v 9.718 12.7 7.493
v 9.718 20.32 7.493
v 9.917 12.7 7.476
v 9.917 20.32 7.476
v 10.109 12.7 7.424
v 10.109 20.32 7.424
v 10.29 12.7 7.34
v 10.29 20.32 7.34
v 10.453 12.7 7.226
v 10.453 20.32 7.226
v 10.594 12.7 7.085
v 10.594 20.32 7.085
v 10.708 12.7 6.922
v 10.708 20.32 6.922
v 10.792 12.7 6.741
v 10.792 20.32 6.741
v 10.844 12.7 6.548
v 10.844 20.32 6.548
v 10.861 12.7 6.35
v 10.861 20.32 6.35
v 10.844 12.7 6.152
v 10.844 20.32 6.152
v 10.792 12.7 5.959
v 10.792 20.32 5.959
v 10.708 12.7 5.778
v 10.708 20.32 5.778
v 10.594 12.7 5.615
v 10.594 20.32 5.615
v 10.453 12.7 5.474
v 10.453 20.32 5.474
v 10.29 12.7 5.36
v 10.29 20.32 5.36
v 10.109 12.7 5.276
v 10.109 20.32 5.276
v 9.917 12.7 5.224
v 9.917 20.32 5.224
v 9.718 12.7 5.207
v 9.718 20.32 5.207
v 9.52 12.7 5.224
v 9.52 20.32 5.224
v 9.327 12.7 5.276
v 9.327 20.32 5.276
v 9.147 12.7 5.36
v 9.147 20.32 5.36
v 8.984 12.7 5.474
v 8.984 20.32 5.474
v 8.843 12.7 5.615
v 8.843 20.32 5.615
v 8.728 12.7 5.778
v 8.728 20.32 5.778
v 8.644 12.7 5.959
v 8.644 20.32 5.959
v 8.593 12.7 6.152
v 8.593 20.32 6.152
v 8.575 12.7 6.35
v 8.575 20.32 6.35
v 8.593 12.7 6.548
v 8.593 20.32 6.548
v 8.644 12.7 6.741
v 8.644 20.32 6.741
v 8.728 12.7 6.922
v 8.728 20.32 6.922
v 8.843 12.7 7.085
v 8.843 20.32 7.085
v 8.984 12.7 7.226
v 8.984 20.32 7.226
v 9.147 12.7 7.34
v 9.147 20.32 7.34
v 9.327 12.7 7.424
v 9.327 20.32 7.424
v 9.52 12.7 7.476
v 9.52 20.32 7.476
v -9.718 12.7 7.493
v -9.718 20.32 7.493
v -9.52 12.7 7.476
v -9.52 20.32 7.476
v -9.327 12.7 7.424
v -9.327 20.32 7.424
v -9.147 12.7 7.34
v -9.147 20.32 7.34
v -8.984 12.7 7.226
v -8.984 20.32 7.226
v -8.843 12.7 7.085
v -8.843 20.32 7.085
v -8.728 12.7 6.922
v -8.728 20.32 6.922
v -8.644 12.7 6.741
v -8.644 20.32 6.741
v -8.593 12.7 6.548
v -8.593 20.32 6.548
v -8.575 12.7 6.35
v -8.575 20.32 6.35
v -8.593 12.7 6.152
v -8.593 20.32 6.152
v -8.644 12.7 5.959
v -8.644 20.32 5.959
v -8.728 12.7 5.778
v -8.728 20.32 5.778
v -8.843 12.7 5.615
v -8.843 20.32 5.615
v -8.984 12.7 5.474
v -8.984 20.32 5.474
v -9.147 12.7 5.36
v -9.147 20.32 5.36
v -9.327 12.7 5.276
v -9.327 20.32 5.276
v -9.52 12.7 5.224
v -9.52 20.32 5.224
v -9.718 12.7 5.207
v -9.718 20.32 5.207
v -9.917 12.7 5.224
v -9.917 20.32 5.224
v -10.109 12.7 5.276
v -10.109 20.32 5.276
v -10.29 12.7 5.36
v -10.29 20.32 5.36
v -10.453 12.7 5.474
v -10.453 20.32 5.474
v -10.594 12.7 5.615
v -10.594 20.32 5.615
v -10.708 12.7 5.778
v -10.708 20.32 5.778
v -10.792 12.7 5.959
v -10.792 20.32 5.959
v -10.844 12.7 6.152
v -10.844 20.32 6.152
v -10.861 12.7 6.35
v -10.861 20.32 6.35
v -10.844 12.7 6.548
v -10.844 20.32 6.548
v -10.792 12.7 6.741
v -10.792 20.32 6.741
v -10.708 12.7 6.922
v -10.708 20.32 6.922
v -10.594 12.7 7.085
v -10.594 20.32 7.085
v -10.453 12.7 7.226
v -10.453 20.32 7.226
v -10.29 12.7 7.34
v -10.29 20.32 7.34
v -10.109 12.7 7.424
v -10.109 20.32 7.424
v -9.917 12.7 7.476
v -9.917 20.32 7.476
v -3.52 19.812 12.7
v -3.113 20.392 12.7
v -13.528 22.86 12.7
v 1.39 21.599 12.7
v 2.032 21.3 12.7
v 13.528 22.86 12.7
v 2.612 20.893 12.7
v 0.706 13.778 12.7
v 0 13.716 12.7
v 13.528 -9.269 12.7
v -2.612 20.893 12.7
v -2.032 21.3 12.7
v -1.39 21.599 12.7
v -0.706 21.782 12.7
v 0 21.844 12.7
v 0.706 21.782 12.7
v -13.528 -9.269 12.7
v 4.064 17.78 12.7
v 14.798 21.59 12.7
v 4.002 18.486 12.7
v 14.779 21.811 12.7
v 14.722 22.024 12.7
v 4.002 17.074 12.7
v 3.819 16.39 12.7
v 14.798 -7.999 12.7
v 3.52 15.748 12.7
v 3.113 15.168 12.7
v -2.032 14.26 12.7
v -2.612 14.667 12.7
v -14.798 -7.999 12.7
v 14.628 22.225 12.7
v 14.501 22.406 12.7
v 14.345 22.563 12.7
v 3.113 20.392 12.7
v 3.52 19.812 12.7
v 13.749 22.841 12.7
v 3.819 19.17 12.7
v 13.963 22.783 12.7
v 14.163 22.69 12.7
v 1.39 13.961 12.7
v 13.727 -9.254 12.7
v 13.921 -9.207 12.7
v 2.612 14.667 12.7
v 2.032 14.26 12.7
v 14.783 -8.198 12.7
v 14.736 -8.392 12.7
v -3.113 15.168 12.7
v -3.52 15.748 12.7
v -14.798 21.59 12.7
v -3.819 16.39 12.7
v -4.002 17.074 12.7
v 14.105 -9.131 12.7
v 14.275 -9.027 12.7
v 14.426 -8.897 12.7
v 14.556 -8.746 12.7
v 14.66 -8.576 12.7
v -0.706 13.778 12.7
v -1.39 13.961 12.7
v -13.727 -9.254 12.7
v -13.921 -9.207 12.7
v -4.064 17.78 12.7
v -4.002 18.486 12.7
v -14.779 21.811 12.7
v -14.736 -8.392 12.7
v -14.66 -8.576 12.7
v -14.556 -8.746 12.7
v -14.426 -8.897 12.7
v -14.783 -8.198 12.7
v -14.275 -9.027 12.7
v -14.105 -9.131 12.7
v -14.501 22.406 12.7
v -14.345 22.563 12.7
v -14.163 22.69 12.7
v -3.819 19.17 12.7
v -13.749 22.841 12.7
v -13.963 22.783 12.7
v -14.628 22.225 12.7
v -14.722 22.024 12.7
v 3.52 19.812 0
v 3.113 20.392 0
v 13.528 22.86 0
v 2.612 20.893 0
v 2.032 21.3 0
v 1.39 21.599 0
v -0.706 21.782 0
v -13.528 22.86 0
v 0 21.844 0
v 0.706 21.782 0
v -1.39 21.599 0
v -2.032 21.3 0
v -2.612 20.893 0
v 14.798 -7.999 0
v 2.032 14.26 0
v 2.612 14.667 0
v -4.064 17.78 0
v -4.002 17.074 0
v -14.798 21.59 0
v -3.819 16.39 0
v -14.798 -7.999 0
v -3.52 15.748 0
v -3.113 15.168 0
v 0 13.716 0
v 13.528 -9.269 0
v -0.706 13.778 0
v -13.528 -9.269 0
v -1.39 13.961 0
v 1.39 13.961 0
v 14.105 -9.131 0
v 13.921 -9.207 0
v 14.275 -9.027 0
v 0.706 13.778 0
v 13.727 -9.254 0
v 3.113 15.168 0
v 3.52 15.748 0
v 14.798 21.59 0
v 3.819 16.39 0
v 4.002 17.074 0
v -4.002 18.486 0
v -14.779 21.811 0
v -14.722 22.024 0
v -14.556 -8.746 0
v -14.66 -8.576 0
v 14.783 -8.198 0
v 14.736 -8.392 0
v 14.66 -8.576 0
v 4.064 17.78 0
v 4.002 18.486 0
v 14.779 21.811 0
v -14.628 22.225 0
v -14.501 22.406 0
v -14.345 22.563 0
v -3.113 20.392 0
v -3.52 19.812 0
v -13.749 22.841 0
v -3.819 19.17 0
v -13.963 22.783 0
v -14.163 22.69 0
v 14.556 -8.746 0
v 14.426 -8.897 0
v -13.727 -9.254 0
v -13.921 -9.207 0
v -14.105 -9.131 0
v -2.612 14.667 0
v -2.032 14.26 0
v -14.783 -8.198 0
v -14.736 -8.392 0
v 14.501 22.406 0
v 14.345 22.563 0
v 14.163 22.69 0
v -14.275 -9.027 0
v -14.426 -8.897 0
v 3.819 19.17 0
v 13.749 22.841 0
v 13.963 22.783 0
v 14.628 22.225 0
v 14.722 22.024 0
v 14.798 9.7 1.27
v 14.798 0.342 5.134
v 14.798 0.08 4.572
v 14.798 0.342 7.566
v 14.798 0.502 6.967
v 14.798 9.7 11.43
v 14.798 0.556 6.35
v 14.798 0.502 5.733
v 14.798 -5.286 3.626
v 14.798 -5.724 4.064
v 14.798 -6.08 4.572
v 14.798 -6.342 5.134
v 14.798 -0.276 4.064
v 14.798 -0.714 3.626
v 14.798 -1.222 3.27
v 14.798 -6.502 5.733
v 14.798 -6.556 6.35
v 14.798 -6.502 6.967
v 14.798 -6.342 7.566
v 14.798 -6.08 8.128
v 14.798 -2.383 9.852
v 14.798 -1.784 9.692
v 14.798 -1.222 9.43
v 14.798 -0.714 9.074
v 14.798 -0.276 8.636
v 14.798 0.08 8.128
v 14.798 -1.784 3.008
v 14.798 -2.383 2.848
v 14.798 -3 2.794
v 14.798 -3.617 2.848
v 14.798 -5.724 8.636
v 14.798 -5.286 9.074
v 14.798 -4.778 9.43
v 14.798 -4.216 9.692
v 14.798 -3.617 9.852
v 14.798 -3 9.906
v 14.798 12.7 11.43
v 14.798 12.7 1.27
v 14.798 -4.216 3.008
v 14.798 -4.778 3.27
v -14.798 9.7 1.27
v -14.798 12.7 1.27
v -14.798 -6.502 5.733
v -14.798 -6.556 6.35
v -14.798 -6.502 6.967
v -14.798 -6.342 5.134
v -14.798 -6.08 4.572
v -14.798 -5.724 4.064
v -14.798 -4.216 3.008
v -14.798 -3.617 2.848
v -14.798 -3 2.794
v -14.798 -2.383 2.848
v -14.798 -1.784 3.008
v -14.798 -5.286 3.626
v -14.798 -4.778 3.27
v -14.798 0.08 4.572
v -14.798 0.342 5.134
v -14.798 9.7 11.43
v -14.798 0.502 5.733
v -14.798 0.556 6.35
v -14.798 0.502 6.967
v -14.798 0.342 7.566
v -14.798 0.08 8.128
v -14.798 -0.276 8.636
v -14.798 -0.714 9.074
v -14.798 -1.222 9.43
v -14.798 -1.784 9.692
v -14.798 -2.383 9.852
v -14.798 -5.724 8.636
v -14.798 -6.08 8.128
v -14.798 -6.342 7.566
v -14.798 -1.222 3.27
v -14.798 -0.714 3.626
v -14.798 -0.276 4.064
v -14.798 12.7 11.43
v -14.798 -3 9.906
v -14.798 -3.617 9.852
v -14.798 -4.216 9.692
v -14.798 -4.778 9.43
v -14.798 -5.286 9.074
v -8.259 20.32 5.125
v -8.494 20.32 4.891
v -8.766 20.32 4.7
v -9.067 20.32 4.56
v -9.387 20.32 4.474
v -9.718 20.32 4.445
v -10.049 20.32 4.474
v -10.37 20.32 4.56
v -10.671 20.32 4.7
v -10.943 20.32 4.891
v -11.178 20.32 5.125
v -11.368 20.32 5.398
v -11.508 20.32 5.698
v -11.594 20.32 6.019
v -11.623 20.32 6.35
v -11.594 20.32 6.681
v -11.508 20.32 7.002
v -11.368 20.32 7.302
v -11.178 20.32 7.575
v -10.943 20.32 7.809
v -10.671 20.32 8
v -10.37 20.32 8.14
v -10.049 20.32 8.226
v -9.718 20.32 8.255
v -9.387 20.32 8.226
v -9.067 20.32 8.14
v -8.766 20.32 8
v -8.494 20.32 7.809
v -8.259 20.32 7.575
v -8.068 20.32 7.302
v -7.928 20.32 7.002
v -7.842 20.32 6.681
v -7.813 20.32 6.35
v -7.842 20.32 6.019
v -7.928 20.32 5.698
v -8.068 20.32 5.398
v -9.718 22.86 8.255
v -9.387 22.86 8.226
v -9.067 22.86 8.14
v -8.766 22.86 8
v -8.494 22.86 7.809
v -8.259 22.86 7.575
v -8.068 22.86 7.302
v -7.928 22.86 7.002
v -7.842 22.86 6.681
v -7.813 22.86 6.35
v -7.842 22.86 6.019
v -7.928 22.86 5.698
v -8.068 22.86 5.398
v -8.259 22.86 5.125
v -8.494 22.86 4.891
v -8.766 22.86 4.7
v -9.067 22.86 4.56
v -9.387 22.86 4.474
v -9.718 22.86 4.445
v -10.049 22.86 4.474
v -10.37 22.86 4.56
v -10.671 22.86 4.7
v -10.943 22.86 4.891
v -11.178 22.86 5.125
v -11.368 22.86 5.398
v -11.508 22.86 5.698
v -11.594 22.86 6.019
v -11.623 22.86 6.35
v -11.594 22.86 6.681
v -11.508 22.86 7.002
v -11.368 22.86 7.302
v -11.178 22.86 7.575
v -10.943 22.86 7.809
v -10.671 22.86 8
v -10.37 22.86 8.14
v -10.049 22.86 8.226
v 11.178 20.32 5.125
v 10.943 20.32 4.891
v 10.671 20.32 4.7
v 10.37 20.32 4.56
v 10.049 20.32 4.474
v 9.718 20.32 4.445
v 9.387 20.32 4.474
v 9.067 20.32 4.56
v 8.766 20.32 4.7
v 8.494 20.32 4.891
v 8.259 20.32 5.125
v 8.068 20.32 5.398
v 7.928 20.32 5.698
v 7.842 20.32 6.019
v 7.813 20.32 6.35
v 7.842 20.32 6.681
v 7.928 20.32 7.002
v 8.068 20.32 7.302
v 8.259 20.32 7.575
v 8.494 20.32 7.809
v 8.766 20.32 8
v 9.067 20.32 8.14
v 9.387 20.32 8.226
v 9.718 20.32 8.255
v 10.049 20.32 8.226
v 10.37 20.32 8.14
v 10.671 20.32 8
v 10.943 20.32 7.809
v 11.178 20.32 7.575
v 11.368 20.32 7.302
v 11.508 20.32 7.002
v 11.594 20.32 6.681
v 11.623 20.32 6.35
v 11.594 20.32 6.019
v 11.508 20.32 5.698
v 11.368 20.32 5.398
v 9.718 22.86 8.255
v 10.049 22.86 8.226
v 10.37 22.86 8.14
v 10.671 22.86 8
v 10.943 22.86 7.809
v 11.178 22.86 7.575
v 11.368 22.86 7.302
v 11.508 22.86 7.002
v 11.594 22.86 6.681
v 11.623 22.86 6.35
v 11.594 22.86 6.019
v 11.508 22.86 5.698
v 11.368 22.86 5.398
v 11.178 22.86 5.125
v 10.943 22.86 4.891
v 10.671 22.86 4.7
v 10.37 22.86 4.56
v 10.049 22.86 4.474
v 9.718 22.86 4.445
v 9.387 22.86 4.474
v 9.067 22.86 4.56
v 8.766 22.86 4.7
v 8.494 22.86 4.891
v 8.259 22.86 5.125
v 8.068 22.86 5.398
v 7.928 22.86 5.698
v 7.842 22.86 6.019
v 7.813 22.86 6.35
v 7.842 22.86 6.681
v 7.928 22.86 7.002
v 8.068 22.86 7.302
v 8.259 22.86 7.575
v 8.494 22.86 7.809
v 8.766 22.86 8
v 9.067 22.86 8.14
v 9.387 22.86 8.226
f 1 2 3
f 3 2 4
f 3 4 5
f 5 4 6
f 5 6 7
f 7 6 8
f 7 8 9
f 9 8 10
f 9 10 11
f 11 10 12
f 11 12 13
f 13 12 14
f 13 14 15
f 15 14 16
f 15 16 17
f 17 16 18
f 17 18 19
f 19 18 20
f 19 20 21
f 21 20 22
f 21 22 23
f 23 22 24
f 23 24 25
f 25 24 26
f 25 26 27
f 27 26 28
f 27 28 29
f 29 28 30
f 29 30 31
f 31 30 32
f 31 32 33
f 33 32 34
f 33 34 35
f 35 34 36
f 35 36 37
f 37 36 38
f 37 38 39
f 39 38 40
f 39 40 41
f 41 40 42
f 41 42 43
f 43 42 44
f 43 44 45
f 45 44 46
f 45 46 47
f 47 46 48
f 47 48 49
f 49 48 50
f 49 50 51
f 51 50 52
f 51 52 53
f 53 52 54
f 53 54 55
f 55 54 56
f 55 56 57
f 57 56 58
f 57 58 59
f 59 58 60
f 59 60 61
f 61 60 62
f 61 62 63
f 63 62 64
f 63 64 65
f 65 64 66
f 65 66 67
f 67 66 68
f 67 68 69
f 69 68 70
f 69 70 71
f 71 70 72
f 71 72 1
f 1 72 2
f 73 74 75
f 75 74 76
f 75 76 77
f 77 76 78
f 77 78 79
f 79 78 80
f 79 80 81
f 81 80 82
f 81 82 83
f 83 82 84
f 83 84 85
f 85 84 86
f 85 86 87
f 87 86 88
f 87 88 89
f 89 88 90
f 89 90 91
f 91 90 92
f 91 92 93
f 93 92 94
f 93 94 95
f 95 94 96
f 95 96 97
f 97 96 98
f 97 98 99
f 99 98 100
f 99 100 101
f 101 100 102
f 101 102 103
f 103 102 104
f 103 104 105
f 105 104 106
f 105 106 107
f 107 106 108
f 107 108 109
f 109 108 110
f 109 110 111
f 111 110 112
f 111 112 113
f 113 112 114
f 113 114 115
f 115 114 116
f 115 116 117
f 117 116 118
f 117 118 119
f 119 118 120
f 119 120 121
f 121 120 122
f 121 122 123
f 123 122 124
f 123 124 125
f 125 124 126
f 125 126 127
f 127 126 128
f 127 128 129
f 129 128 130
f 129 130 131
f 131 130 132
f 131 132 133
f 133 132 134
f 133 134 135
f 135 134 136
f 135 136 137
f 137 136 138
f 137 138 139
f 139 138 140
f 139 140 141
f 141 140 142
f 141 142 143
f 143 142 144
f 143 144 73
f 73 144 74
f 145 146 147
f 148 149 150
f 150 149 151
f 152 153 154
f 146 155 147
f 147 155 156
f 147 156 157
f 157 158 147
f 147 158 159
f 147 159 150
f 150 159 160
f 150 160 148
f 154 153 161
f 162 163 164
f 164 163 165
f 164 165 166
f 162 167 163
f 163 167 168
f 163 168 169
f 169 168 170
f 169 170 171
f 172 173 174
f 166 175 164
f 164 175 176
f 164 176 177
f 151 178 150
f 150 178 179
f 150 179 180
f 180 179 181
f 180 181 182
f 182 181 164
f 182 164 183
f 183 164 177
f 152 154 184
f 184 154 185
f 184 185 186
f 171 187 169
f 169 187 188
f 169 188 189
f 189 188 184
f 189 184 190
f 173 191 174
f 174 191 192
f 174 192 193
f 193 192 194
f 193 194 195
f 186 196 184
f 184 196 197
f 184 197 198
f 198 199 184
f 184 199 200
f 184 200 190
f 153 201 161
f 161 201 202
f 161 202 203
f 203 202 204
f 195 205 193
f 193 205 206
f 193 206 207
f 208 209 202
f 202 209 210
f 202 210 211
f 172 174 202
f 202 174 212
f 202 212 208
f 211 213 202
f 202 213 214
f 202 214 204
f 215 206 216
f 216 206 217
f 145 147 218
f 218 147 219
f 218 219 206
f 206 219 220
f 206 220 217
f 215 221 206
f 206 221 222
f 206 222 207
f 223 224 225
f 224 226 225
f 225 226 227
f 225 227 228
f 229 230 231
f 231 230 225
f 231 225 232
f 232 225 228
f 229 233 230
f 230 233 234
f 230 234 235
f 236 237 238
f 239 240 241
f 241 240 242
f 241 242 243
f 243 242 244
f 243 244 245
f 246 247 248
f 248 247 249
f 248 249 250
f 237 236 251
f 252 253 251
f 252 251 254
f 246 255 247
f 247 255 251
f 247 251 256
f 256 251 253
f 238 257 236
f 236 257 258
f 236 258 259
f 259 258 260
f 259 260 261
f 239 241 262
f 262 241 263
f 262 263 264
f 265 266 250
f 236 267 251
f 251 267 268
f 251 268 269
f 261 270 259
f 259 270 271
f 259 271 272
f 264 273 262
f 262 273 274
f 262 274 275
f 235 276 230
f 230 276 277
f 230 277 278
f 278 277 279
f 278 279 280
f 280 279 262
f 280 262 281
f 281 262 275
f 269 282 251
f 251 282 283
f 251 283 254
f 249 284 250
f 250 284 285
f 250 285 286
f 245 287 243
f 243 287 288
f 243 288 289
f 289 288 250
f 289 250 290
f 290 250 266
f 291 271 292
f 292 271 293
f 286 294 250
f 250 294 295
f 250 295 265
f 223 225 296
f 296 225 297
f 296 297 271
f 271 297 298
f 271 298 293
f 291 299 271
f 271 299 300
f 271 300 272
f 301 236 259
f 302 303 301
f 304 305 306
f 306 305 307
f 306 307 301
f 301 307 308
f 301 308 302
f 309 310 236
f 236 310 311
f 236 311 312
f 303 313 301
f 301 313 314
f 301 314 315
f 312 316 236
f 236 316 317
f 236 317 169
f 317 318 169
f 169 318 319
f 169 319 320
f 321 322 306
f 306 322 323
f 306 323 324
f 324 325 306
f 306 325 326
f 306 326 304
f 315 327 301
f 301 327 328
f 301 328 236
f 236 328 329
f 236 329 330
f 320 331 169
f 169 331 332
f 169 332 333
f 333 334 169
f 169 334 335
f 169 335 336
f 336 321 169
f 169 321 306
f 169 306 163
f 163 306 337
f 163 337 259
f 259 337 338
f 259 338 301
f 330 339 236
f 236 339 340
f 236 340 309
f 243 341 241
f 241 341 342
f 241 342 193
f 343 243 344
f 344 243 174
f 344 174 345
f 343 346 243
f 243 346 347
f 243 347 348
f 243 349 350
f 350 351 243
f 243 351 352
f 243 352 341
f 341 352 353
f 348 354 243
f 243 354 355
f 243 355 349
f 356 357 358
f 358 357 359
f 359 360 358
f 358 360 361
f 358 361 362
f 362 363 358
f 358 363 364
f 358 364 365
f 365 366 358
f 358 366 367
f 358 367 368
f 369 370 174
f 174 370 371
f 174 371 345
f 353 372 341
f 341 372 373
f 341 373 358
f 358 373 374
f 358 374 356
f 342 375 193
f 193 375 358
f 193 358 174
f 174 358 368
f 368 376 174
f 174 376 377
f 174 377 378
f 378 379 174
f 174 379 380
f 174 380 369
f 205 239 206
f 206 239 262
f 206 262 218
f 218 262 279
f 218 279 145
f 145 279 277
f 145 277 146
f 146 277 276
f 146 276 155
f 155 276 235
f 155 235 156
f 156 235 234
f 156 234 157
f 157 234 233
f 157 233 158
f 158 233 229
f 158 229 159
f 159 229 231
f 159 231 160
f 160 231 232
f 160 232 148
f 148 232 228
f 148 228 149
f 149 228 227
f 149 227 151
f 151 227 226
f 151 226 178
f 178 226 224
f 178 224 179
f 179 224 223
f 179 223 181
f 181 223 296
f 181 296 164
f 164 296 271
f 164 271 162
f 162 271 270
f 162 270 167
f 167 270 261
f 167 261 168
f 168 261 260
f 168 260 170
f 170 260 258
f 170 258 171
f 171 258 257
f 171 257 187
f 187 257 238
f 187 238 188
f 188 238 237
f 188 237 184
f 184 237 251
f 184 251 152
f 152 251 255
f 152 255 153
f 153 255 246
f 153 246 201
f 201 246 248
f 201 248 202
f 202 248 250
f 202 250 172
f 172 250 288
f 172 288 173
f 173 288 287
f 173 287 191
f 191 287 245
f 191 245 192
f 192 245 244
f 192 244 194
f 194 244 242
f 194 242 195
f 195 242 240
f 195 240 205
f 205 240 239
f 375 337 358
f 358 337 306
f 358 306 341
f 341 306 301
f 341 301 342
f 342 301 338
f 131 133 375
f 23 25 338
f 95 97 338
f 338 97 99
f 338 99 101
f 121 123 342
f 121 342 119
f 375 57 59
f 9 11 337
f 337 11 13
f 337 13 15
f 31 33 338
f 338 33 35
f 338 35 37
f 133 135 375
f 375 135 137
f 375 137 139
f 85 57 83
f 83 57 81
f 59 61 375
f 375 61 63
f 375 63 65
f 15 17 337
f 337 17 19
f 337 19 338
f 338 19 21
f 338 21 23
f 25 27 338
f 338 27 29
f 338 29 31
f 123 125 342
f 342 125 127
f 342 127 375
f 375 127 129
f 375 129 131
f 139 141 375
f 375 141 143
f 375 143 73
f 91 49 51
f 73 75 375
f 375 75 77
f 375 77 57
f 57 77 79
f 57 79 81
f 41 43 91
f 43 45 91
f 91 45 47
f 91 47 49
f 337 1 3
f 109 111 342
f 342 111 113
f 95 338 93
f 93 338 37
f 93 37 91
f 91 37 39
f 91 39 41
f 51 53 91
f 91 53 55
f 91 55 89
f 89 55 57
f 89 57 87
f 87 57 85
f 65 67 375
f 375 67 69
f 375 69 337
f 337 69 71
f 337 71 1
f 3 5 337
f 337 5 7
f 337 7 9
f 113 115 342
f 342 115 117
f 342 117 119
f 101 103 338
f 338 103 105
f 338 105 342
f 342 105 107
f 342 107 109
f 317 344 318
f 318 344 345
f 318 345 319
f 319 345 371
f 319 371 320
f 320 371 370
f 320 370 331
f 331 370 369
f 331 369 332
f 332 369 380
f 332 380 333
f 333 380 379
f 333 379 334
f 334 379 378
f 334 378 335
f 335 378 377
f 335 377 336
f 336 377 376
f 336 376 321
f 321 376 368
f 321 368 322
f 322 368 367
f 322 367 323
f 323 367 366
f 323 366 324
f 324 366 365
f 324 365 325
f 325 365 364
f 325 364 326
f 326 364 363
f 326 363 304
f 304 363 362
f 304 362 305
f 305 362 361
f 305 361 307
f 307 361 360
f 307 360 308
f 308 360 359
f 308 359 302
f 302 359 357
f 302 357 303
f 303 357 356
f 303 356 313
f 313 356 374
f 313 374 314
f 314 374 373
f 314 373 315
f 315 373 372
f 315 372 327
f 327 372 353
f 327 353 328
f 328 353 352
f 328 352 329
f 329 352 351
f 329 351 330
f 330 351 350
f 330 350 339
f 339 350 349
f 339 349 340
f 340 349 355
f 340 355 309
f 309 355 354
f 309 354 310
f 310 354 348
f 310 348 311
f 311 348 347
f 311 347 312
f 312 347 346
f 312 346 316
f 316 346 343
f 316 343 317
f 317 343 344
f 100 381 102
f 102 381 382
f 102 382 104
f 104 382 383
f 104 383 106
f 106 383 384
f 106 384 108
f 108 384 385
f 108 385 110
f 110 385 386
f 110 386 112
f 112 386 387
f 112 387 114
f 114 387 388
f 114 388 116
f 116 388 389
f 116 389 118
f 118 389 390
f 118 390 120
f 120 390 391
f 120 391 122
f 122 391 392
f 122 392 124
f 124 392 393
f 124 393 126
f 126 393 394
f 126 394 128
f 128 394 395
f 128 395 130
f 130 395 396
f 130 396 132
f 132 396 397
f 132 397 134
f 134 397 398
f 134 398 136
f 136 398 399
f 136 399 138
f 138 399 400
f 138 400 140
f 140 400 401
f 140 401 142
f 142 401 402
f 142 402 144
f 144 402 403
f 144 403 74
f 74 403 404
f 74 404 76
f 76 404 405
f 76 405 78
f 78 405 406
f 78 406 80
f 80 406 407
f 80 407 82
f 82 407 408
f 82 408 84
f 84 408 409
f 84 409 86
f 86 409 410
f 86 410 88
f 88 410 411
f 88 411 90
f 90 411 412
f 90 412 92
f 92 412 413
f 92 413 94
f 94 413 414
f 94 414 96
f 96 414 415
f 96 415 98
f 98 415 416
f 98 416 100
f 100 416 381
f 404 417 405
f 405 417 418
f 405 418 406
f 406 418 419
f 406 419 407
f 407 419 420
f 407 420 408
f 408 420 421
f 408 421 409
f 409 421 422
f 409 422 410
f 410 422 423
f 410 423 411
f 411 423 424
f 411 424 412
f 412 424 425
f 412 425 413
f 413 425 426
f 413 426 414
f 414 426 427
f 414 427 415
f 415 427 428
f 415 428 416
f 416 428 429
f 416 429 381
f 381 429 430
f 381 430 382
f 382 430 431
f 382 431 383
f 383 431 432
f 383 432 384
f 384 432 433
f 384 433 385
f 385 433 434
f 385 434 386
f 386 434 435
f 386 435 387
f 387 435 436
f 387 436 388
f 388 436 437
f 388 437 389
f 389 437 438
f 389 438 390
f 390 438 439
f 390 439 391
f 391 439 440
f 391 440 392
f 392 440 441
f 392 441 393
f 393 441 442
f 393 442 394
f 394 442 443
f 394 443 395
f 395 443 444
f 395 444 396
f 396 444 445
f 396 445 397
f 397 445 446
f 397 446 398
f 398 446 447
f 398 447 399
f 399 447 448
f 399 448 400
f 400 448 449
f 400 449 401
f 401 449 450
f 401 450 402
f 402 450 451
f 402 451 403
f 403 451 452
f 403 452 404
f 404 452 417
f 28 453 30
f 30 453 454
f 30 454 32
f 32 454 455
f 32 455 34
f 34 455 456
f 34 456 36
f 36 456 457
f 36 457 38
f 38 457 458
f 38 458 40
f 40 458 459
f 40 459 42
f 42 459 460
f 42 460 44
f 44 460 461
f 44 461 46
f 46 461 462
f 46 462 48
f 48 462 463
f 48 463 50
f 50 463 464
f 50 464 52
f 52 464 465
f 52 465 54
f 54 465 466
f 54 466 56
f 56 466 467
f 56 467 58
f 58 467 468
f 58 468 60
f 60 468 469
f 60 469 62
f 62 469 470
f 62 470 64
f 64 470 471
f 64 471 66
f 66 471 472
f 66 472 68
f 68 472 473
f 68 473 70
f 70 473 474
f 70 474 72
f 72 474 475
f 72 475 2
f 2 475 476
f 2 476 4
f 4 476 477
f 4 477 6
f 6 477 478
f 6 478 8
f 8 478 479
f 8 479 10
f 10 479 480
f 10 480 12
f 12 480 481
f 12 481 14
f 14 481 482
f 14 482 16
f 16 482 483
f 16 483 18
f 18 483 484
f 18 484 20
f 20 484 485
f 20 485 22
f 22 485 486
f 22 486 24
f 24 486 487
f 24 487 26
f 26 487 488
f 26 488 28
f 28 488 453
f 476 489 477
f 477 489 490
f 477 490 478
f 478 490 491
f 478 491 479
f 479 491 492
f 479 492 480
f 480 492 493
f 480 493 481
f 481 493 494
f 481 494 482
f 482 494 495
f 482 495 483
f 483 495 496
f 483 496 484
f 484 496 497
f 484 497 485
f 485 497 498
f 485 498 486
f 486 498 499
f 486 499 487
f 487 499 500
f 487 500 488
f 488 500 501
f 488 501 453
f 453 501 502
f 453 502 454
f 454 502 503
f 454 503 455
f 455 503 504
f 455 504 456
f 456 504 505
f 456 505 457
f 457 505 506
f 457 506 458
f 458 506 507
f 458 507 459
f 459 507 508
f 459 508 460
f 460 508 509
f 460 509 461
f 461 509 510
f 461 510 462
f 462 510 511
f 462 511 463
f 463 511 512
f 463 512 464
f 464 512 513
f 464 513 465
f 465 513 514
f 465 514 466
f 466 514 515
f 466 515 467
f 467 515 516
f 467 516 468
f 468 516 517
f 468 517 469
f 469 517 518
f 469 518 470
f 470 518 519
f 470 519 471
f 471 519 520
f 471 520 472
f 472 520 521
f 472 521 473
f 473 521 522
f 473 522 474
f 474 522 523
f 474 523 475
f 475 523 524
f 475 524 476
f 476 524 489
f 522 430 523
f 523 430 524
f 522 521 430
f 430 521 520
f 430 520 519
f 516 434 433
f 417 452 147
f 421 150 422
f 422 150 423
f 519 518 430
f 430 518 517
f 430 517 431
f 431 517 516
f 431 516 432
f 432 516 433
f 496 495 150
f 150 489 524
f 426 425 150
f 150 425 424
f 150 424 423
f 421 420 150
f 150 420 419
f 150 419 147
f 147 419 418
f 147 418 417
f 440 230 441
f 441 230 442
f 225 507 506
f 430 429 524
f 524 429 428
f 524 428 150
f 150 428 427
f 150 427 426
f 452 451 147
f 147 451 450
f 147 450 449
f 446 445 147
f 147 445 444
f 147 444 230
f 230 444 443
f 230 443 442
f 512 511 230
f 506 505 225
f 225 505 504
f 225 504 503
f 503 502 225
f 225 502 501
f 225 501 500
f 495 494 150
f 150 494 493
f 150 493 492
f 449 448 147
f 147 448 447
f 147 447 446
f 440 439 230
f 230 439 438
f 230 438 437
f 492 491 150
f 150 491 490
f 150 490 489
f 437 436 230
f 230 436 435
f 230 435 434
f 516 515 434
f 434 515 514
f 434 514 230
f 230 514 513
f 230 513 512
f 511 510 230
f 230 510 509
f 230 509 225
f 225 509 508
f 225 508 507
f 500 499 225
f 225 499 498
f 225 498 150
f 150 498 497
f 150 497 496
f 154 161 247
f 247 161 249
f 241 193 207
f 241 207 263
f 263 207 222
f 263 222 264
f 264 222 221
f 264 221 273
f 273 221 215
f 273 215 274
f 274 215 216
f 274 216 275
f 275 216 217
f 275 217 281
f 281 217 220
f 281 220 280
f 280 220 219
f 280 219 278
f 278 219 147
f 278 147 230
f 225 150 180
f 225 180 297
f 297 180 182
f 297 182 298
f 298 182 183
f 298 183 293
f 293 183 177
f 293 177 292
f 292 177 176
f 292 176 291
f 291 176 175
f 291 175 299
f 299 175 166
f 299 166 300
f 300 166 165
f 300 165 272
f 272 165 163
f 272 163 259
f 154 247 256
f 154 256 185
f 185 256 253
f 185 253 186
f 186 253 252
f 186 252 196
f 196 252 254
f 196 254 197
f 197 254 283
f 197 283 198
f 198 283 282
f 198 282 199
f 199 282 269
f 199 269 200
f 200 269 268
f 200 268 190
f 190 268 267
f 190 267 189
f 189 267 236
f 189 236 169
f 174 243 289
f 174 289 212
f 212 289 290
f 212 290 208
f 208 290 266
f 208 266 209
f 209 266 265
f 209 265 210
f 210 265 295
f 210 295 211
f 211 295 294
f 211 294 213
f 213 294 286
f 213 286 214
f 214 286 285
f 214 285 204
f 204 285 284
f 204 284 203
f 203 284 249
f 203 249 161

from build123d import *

# Parameters (mm, degrees)
SKETCH1_W           = 29.59652174
SKETCH1_H           = 50.8
SKETCH1_R           = 4.064
BOSS_EXTRUDE1_DEPTH = 12.7
SKETCH2_W           = 10.16
SKETCH2_H           = 3
CUT_EXTRUDE1_DEPTH  = 30.48
SKETCH3_R           = 3.556
CUT_EXTRUDE2_DEPTH  = 45.72
SKETCH4_R           = 1.143
CUT_EXTRUDE3_DEPTH  = 14.290068122
SKETCH5_R           = 1.905
CUT_EXTRUDE4_DEPTH  = 5.08
SKETCH7_W           = 12.7
SKETCH7_H           = 11.050531838
CUT_EXTRUDE5_DEPTH  = 62.484
SKETCH8_W           = 29.59652174
SKETCH8_H           = 2.54
CUT_EXTRUDE6_DEPTH  = 62.484
SKETCH9_W           = 12.7
SKETCH9_H           = 5.08
CUT_EXTRUDE7_DEPTH  = 62.484
FILLET1_R           = 1.27


with BuildPart() as part:
    # Sketch1 → Boss-Extrude1 (new body)
    with BuildSketch(Plane.XY):
        Rectangle(SKETCH1_W, SKETCH1_H)
        with Locations((0, 17.78)):
            Circle(SKETCH1_R, mode=Mode.SUBTRACT)
    extrude(amount=BOSS_EXTRUDE1_DEPTH)

    # Sketch2 → Cut-Extrude1 (cut)
    with BuildSketch(Plane.ZY.offset(14.79826087)):
        with Locations((6.35, 11.2)):
            Rectangle(SKETCH2_W, SKETCH2_H)
    extrude(amount=-CUT_EXTRUDE1_DEPTH, mode=Mode.SUBTRACT)

    # Sketch3 → Cut-Extrude2 (cut)
    with BuildSketch(Plane.ZY.offset(14.79826087)):
        with Locations((6.35, -3)):
            Circle(SKETCH3_R)
    extrude(amount=-CUT_EXTRUDE2_DEPTH, mode=Mode.SUBTRACT)

    # Sketch4 → Cut-Extrude3 (cut)
    with BuildSketch(Plane(origin=(0, 25.4, 0), x_dir=(1, 0, 0), z_dir=(0, 1, 0))):
        with Locations((9.71826087, -6.35)):
            Circle(SKETCH4_R)
        with Locations((-9.71826087, -6.35)):
            Circle(SKETCH4_R)
    extrude(amount=-CUT_EXTRUDE3_DEPTH, mode=Mode.SUBTRACT)

    # Sketch5 → Cut-Extrude4 (cut)
    with BuildSketch(Plane(origin=(0, 25.4, 0), x_dir=(1, 0, 0), z_dir=(0, 1, 0))):
        with Locations((-9.71826087, -6.35)):
            Circle(SKETCH5_R)
        with Locations((9.71826087, -6.35)):
            Circle(SKETCH5_R)
    extrude(amount=-CUT_EXTRUDE4_DEPTH, mode=Mode.SUBTRACT)

    # Sketch7 → Cut-Extrude5 (cut)
    with BuildSketch(Plane.ZY.offset(14.79826087)):
        with Locations((6.35, -19.874734081)):
            Rectangle(SKETCH7_W, SKETCH7_H)
    extrude(amount=-CUT_EXTRUDE5_DEPTH, mode=Mode.SUBTRACT)

    # Sketch8 → Cut-Extrude6 (cut)
    with BuildSketch(Plane.XY.offset(12.7)):
        with Locations((0, 24.13)):
            Rectangle(SKETCH8_W, SKETCH8_H)
    extrude(amount=-CUT_EXTRUDE6_DEPTH, mode=Mode.SUBTRACT)

    # Sketch9 → Cut-Extrude7 (cut)
    with BuildSketch(Plane.ZY.offset(14.79826087)):
        with Locations((6.35, -11.809468162)):
            Rectangle(SKETCH9_W, SKETCH9_H)
    extrude(amount=-CUT_EXTRUDE7_DEPTH, mode=Mode.SUBTRACT)

    # Fillet1
    fillet1_edges = [part.edges().sort_by_distance(p)[0] for p in [
        (14.79826087, -9.269468162, 6.35),
        (-14.79826087, -9.269468162, 6.35),
        (-14.79826087, 22.86, 6.35),
        (14.79826087, 22.86, 6.35),
    ]]
    fillet(fillet1_edges, radius=FILLET1_R)


solid = part.part
